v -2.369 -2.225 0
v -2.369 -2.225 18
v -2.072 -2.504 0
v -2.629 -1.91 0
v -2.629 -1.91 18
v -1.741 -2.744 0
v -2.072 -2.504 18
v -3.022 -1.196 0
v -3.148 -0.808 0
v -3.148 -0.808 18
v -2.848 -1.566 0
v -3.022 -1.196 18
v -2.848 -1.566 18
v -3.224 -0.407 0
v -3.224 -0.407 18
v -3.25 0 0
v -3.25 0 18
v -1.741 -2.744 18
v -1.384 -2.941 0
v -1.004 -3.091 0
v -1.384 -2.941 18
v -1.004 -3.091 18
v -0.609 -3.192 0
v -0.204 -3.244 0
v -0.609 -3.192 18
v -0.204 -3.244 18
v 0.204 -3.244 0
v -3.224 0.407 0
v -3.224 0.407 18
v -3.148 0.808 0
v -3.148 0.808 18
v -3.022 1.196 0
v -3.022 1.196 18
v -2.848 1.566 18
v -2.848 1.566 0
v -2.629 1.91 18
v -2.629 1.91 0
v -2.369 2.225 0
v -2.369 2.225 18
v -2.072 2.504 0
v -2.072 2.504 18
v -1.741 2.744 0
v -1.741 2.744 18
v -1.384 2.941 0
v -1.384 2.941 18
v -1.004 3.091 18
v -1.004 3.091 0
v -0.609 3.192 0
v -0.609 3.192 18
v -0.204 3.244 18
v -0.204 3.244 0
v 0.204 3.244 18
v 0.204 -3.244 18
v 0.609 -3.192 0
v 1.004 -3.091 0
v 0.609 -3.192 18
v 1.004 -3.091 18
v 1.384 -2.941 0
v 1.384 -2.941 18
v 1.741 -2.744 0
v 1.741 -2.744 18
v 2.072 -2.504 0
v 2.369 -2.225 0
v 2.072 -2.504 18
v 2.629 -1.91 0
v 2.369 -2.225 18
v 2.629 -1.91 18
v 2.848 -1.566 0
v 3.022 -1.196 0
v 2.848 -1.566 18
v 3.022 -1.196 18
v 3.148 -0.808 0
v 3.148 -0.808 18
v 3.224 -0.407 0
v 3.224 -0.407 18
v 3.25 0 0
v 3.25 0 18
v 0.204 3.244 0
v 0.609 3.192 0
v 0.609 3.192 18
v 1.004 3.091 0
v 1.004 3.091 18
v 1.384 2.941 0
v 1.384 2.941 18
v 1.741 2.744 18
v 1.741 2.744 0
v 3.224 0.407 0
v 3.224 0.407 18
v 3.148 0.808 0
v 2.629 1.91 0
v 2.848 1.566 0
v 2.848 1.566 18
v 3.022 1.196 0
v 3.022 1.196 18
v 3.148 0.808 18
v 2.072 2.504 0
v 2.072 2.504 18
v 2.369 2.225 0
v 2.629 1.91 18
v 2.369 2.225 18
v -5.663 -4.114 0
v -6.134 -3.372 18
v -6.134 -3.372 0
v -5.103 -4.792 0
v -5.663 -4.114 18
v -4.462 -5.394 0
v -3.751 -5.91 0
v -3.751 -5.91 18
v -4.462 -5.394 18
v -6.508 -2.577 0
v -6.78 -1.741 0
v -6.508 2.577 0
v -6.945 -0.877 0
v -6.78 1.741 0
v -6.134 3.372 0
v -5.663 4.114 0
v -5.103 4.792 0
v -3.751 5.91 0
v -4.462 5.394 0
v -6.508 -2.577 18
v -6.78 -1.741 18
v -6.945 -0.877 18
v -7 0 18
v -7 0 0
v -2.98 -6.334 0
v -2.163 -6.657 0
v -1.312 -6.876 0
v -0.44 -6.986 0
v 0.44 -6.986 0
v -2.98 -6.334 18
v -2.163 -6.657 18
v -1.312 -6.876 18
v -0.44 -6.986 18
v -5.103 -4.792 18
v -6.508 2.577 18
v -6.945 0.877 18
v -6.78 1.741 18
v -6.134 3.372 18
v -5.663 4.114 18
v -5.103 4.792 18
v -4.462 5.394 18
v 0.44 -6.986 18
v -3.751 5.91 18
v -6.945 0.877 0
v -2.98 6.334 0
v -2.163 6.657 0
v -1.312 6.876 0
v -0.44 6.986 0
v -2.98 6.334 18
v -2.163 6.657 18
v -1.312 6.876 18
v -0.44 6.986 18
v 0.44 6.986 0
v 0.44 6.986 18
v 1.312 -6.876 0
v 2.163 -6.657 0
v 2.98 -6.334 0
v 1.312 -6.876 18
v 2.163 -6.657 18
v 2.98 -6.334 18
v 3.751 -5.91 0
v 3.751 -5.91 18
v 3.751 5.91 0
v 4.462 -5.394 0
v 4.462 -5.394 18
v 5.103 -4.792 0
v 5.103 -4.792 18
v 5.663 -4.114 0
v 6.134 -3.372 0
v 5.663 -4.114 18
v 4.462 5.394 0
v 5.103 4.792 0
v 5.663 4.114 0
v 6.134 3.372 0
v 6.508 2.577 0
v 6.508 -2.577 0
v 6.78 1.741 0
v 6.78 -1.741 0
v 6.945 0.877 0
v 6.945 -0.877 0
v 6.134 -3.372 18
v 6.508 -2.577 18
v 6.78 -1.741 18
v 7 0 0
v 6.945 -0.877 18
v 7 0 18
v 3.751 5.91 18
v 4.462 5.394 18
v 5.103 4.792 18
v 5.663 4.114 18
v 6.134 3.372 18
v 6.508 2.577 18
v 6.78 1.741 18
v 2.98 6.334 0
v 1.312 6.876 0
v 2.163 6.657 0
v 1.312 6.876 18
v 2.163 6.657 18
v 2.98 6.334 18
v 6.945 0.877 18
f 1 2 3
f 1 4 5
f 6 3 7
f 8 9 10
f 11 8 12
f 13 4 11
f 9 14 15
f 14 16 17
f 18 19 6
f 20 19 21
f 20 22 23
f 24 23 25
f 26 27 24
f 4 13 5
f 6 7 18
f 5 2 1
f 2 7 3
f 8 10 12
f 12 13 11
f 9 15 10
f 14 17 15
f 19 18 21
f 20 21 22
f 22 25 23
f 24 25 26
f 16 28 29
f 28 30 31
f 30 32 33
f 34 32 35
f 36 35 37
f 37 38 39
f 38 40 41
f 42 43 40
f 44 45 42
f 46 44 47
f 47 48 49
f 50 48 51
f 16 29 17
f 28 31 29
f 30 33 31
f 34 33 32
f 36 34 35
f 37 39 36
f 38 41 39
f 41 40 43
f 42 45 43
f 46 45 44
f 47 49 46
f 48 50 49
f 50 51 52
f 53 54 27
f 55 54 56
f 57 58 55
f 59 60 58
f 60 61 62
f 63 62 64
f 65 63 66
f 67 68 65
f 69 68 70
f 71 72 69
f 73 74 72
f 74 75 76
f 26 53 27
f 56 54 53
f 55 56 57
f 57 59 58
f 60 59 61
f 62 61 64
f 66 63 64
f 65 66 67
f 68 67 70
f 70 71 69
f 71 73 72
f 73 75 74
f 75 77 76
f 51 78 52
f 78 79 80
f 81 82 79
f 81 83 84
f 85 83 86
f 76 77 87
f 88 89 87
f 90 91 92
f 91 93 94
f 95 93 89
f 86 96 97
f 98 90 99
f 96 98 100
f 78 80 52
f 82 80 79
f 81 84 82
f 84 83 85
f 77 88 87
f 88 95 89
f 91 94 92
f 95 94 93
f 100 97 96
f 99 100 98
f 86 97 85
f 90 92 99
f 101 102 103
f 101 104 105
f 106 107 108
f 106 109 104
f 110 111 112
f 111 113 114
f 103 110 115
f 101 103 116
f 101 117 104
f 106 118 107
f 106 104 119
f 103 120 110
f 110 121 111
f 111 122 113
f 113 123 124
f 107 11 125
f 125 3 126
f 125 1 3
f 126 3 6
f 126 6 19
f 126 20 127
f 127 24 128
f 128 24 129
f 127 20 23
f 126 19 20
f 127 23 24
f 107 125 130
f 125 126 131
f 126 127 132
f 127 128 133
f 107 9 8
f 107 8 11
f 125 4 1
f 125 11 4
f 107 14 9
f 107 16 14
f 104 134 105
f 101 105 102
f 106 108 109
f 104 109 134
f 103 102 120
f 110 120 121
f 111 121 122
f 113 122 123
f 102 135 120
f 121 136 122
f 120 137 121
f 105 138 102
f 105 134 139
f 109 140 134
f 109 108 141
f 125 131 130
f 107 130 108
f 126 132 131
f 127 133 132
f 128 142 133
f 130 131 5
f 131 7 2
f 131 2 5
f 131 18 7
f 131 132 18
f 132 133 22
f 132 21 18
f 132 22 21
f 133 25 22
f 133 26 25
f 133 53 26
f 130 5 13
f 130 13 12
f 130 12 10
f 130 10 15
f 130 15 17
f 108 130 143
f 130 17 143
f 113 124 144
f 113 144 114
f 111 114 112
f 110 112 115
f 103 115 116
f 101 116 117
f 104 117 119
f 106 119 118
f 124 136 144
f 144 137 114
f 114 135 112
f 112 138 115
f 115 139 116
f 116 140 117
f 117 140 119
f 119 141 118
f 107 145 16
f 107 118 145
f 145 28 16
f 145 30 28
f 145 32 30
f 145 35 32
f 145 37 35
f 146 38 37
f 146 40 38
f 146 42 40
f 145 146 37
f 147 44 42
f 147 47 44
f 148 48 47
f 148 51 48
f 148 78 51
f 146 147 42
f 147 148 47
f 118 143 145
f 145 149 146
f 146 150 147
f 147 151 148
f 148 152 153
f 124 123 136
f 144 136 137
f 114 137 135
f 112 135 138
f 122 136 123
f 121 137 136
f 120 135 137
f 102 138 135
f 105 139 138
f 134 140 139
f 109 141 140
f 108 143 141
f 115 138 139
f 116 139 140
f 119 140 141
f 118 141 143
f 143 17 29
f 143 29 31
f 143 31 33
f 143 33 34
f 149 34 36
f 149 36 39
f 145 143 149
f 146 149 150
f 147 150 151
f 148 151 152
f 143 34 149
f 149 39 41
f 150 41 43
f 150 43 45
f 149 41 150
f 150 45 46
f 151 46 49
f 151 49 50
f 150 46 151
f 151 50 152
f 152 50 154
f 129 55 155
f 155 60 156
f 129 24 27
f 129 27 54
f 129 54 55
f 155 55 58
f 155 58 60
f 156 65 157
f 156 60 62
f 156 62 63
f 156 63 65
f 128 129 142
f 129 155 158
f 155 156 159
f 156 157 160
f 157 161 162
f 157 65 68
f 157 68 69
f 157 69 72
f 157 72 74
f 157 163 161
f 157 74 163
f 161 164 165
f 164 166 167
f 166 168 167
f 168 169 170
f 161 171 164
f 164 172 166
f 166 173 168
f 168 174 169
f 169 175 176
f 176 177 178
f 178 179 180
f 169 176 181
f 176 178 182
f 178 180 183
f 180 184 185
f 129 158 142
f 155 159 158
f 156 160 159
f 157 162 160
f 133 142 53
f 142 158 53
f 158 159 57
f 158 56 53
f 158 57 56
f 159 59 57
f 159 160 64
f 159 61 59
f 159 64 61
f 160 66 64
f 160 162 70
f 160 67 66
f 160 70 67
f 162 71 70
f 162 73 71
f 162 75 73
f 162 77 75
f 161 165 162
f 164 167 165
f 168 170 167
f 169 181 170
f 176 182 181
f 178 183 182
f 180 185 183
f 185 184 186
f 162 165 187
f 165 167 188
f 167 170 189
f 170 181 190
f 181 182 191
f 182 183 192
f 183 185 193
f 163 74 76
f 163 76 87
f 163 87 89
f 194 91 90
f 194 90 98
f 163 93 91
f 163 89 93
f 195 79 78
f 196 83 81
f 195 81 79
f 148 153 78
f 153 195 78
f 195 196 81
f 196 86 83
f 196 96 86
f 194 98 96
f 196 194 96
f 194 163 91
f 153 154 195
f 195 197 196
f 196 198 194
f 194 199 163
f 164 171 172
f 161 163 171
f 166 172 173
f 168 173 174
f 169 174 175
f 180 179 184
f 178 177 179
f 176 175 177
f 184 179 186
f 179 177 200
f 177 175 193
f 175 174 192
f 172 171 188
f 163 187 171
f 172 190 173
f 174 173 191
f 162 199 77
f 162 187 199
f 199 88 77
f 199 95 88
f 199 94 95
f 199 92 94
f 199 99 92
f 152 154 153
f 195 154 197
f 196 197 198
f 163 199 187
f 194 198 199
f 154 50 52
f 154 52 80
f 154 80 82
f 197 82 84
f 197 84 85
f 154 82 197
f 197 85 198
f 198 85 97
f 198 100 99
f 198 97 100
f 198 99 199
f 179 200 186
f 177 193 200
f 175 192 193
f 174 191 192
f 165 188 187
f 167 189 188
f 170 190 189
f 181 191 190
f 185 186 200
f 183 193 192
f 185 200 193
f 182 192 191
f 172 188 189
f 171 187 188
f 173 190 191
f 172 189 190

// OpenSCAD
$fn = 50;

difference() {
	union() {
		cylinder(h = 18, r = 7.0);
	}
	union() {
		cylinder(h = 18, r = 3.25);
		cylinder(h = 18, r = 1.8);
	}
}
